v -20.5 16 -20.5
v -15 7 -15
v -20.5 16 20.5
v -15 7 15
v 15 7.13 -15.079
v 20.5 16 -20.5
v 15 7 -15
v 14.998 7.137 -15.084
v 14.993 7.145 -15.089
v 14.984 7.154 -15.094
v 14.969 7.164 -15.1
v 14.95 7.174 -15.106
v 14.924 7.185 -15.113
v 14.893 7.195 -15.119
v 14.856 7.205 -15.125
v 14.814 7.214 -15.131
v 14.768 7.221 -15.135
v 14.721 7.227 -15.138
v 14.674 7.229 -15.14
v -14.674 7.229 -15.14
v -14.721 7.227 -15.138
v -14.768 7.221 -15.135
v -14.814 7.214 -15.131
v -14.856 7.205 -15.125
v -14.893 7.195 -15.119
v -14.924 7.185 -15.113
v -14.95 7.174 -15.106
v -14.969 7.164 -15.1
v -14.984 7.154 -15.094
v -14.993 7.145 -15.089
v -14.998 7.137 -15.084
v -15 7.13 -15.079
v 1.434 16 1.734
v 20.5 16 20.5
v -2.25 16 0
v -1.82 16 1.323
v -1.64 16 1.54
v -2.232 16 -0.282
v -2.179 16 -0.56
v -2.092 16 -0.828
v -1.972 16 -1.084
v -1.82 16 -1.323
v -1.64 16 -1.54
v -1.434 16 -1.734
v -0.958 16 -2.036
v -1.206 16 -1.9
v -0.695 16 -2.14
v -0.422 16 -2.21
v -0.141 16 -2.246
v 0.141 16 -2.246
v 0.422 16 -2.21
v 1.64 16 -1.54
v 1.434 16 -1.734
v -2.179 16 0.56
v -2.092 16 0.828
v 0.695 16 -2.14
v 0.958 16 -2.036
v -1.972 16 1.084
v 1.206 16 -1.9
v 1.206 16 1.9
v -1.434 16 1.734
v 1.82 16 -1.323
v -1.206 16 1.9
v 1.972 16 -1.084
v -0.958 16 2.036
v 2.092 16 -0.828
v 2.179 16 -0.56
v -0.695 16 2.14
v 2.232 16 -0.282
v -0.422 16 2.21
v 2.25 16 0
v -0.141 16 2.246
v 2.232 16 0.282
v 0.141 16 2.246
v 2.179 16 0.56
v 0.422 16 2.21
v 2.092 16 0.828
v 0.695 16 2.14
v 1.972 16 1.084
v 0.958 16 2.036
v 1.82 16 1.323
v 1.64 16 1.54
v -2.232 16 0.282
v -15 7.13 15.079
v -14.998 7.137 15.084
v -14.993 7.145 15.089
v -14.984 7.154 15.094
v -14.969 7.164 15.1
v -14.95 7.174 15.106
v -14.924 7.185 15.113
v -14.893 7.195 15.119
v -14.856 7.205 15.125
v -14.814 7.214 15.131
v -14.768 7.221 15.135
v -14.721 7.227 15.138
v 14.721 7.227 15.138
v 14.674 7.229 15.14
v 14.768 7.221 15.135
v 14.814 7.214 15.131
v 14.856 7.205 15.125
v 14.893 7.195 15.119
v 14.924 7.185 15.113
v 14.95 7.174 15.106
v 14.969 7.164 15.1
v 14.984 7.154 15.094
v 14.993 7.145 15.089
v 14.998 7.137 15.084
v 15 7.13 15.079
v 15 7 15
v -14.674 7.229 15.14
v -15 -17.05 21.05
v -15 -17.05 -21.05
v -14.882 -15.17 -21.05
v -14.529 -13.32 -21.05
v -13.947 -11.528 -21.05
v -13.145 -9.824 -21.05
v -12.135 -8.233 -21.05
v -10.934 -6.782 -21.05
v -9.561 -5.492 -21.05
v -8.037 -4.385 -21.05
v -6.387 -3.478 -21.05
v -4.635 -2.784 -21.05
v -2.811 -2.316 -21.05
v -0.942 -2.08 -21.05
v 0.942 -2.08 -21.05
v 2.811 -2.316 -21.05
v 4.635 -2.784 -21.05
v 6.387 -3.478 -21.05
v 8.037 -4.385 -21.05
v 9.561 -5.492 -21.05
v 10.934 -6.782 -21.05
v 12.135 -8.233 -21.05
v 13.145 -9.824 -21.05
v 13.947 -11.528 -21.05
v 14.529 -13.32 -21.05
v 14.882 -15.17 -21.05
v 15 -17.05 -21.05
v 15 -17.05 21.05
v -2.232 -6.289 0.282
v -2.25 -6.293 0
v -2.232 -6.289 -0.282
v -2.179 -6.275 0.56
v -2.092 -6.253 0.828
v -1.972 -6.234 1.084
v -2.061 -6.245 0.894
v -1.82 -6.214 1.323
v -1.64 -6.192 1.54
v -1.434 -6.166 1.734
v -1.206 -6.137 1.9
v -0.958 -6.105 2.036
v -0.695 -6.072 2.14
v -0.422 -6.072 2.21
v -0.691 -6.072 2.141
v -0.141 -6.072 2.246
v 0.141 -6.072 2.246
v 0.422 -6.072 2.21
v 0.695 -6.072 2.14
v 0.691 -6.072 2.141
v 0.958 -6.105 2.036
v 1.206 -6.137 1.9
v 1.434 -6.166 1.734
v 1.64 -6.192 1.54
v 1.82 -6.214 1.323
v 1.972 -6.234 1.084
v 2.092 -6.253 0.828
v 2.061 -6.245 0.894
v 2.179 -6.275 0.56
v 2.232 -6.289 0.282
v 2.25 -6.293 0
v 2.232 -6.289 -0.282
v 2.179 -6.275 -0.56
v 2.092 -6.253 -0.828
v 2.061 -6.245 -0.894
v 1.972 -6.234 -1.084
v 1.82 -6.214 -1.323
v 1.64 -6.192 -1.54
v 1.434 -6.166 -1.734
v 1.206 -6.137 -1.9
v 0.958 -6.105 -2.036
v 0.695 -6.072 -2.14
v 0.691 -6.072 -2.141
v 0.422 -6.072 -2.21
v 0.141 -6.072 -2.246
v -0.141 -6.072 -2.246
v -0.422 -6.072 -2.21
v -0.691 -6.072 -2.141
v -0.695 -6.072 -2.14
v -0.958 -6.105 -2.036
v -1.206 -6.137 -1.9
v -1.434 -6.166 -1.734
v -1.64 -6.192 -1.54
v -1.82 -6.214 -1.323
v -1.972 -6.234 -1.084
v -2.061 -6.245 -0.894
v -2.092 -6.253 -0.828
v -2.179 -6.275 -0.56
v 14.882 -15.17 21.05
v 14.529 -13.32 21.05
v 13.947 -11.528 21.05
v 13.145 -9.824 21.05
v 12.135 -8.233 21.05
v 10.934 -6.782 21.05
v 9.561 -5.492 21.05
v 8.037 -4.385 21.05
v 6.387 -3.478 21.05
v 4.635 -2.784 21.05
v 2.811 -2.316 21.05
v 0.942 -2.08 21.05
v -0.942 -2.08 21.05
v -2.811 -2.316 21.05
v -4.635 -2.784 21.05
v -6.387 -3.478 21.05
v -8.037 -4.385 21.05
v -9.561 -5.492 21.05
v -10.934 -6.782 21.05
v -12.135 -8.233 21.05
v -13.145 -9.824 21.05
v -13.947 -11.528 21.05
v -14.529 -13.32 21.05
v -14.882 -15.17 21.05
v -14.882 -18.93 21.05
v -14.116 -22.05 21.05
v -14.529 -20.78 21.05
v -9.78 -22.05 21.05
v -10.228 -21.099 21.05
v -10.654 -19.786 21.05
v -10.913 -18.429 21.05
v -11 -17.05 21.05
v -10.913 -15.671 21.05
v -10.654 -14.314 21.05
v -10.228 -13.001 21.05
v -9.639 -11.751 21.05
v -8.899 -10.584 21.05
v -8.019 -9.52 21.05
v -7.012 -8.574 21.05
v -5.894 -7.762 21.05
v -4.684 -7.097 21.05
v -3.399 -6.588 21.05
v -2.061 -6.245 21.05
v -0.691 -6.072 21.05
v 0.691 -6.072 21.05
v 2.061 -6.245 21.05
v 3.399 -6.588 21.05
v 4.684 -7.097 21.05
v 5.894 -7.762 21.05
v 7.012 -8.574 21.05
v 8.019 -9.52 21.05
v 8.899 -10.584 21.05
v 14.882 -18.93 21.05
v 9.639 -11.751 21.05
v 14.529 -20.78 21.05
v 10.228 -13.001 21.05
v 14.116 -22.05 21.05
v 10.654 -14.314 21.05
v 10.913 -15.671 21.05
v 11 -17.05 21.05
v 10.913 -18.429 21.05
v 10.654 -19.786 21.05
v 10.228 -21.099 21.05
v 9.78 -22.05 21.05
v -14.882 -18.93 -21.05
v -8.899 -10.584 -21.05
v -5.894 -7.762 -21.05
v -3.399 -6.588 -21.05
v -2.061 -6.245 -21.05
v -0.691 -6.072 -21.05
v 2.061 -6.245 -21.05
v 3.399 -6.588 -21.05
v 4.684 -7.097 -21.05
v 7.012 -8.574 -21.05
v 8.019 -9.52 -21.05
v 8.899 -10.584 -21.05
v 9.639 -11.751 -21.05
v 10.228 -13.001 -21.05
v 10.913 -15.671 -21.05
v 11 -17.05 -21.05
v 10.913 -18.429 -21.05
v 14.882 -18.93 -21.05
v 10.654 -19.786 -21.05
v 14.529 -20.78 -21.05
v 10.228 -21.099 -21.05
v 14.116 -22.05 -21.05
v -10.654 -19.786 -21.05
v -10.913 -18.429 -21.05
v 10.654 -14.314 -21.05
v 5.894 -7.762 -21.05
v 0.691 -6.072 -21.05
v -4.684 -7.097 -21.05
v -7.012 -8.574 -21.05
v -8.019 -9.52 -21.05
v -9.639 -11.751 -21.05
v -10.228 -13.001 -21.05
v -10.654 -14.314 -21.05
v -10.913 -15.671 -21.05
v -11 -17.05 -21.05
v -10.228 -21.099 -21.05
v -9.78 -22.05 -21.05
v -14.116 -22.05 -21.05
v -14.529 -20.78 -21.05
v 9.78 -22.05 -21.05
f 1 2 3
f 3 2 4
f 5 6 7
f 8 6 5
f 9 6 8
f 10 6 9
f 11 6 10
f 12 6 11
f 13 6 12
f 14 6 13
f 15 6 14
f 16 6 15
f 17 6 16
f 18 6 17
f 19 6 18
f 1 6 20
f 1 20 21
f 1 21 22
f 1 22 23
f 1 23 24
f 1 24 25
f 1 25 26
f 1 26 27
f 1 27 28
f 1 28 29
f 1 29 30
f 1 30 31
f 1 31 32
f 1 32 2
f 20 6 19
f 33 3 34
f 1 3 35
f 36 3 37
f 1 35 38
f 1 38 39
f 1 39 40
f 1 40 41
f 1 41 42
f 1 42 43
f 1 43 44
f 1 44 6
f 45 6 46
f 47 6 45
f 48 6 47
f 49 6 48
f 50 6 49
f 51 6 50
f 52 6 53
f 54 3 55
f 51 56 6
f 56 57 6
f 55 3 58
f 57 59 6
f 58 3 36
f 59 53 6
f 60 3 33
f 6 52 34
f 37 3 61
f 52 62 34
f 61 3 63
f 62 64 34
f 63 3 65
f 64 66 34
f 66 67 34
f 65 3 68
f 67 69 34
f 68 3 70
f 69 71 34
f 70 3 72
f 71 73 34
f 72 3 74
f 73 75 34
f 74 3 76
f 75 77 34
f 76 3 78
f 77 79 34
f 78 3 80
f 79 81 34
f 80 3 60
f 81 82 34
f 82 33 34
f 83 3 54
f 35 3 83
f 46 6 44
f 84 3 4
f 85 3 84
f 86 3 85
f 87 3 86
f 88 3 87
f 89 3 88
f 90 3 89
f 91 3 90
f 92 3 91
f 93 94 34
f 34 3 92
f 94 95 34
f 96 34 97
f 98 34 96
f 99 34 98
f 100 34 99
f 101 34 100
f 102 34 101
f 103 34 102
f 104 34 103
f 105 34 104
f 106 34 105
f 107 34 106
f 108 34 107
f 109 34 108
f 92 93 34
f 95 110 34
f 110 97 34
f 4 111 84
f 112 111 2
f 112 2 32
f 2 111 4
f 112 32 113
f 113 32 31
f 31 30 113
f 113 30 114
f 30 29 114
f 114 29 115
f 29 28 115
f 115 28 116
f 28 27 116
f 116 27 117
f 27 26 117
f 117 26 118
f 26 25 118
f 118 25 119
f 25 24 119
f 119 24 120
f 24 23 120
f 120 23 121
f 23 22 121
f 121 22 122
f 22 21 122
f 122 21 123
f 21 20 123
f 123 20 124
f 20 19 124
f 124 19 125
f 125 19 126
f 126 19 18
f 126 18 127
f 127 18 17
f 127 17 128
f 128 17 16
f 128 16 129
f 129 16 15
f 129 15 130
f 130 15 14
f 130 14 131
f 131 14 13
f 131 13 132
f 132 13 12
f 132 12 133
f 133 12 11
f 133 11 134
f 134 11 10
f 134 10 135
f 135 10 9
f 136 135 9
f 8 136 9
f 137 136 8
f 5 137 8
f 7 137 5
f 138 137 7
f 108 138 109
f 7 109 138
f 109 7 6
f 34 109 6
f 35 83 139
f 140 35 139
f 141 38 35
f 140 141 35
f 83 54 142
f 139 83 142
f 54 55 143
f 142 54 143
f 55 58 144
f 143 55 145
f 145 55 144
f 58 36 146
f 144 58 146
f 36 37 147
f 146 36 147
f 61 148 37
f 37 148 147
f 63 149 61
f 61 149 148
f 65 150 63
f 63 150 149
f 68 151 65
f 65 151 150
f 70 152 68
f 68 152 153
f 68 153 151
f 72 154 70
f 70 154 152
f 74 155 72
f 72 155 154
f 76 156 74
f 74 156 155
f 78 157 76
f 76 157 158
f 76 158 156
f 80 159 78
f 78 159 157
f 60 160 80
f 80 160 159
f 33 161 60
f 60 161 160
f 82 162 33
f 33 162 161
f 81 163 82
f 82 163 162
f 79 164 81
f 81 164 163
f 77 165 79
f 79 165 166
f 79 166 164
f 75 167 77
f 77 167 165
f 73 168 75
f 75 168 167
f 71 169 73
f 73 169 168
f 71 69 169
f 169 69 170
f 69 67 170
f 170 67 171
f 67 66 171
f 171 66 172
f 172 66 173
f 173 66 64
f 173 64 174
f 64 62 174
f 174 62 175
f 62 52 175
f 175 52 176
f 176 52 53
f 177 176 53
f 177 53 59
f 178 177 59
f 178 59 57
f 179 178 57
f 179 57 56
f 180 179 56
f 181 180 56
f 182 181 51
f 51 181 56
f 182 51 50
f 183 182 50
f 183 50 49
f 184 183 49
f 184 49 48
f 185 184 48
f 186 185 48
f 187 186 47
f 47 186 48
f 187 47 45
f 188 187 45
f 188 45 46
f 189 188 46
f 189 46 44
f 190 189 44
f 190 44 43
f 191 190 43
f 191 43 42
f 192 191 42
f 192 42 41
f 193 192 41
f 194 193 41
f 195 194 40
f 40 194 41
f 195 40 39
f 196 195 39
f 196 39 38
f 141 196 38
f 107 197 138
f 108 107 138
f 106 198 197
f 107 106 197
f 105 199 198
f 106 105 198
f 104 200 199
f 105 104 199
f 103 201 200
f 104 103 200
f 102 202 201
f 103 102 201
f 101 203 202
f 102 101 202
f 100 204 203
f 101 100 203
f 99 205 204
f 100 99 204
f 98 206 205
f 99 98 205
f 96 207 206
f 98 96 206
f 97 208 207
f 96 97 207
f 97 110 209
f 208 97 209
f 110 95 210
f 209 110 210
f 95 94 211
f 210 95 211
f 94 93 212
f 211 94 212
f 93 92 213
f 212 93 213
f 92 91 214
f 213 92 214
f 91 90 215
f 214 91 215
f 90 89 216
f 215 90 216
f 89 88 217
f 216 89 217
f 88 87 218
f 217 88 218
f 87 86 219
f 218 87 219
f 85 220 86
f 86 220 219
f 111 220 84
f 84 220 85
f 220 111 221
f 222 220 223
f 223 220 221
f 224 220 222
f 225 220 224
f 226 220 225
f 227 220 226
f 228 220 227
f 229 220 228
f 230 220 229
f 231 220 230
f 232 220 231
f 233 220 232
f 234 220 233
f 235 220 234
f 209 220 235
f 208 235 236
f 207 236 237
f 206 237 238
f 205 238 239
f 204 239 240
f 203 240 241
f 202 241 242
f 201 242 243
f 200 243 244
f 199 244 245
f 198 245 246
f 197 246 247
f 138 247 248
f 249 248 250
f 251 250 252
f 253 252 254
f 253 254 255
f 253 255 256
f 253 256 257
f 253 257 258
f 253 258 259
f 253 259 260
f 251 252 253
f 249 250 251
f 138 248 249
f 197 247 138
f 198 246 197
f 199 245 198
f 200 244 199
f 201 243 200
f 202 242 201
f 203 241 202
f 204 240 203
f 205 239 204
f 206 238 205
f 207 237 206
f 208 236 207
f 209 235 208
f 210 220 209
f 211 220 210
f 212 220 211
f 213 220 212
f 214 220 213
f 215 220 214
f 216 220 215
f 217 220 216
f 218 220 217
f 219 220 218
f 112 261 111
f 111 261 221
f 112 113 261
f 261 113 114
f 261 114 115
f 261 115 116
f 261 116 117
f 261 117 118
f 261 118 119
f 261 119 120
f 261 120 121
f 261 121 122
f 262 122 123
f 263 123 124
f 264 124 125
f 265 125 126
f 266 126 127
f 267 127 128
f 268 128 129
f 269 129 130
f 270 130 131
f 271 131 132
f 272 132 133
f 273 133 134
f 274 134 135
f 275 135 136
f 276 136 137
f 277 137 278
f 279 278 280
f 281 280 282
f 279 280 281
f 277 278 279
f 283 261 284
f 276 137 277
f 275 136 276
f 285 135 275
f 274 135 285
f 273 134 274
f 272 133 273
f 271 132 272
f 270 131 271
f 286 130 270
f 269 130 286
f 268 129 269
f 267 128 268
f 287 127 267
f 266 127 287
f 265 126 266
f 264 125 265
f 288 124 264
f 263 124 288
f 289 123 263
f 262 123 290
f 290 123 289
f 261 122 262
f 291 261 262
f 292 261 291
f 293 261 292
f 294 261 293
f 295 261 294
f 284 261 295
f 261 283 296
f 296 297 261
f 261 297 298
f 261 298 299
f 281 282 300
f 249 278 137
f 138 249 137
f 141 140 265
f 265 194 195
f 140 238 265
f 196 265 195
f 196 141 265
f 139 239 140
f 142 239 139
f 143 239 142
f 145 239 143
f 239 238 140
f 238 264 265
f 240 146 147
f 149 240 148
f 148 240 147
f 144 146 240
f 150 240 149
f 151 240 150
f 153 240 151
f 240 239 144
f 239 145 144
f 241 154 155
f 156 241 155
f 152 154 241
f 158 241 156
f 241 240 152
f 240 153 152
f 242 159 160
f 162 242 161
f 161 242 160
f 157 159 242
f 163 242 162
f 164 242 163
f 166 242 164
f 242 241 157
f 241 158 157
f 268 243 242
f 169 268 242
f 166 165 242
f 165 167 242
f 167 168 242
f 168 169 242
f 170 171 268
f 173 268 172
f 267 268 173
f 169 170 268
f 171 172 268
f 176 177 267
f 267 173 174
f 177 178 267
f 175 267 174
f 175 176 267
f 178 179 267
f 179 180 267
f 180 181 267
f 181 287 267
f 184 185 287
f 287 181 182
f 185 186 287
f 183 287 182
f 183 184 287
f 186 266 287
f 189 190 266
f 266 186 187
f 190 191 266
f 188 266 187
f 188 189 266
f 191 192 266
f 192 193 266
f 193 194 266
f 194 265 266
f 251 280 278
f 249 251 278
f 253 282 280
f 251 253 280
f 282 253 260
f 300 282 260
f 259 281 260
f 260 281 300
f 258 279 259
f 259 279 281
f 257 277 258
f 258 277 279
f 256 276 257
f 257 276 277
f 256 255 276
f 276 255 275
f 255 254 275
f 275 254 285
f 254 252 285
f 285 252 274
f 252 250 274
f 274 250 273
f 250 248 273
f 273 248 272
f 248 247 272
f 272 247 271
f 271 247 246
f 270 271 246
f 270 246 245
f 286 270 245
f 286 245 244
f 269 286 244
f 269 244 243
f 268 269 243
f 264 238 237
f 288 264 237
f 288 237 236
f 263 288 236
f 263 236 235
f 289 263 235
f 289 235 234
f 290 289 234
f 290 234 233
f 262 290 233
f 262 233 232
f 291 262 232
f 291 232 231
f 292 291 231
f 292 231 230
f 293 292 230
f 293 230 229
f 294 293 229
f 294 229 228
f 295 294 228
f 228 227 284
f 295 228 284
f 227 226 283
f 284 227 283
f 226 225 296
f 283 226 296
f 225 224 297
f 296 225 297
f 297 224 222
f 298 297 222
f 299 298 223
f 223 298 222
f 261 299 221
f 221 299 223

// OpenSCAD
// 1/2" PVC antenna mast to Camera Tripod clip-mount
// Based on Satnogs Project antenna to axis mount
// Satnogs Project 2014 MPL2.0 http://satnogs.org
// Corey Shields 2015 MPL2.0 https://www.mozilla.org/MPL/2.0/

$fn=50;

mast_1 = 34.1;		 // Axis mast diameter
mast_2 = 22;		 // Antenna mast diameter
offset = 8;			 // Extra width of mount
tireup_w = 6; 		 // Width of tireup
tireup_h = 1.5;	 // Height of tireup
washer = 16;		 // Washer diameter
bolt = 4.5;			 // Bolt for antenna mast

base_height = 9;  // base height for tripod mount

module axises() {
	translate([0,-(mast_1+mast_2)/2+mast_2/2,0])
		cylinder(h=mast_1+offset+1, d=mast_2, center=true);
	// Bolt for antenna mast cylinder
	translate([0,(mast_1+mast_2)/2-mast_1/2,0])
		rotate([90,0,0])
			cylinder(h=mast_1+offset+base_height+1, d=bolt, center=true);
}

module axises_outer() {
	translate([0,(mast_2+mast_2)/2-mast_1/2,0])
		rotate([0,90,0])
			cube(size=([30,5,30]), center=true);
	translate([0,-(mast_1+mast_2)/2+mast_2/2,0])
		cylinder(h=mast_1+offset, d=mast_2+offset, center=true);
}

module tire_up() {
	difference() {
		cylinder(h=tireup_w,d=mast_2+offset+tireup_h,center=true);
		cylinder(h=tireup_w,d=mast_2+offset-tireup_h,center=true);
	}
}

// the tripod base
module base() {
	translate([0,16,0])
		rotate([90,0,0])
			polyhedron(
			  points=[ [20.5,20.5,0],[20.5,-20.5,0],[-20.5,-20.5,0],[-20.5,20.5,0],
				[15,15,base_height],[15,-15,base_height],[-15,-15,base_height],[-15,15,base_height] ],
			  faces=[ [3,2,1,0],[1,2,6,5],[2,3,7,6],[3,0,4,7],[0,1,5,4],[4,5,6,7] ]
	);
}

module cut() {
	translate([0,-(mast_1+mast_2)/2,0])
		cube([offset*5,offset*1.5,mast_1+offset*4],center=true);
}

union() {
	difference() {
		union() {
			hull() {
				axises_outer();
			}
		base();
		};
		axises();
		cut();
	}
}
